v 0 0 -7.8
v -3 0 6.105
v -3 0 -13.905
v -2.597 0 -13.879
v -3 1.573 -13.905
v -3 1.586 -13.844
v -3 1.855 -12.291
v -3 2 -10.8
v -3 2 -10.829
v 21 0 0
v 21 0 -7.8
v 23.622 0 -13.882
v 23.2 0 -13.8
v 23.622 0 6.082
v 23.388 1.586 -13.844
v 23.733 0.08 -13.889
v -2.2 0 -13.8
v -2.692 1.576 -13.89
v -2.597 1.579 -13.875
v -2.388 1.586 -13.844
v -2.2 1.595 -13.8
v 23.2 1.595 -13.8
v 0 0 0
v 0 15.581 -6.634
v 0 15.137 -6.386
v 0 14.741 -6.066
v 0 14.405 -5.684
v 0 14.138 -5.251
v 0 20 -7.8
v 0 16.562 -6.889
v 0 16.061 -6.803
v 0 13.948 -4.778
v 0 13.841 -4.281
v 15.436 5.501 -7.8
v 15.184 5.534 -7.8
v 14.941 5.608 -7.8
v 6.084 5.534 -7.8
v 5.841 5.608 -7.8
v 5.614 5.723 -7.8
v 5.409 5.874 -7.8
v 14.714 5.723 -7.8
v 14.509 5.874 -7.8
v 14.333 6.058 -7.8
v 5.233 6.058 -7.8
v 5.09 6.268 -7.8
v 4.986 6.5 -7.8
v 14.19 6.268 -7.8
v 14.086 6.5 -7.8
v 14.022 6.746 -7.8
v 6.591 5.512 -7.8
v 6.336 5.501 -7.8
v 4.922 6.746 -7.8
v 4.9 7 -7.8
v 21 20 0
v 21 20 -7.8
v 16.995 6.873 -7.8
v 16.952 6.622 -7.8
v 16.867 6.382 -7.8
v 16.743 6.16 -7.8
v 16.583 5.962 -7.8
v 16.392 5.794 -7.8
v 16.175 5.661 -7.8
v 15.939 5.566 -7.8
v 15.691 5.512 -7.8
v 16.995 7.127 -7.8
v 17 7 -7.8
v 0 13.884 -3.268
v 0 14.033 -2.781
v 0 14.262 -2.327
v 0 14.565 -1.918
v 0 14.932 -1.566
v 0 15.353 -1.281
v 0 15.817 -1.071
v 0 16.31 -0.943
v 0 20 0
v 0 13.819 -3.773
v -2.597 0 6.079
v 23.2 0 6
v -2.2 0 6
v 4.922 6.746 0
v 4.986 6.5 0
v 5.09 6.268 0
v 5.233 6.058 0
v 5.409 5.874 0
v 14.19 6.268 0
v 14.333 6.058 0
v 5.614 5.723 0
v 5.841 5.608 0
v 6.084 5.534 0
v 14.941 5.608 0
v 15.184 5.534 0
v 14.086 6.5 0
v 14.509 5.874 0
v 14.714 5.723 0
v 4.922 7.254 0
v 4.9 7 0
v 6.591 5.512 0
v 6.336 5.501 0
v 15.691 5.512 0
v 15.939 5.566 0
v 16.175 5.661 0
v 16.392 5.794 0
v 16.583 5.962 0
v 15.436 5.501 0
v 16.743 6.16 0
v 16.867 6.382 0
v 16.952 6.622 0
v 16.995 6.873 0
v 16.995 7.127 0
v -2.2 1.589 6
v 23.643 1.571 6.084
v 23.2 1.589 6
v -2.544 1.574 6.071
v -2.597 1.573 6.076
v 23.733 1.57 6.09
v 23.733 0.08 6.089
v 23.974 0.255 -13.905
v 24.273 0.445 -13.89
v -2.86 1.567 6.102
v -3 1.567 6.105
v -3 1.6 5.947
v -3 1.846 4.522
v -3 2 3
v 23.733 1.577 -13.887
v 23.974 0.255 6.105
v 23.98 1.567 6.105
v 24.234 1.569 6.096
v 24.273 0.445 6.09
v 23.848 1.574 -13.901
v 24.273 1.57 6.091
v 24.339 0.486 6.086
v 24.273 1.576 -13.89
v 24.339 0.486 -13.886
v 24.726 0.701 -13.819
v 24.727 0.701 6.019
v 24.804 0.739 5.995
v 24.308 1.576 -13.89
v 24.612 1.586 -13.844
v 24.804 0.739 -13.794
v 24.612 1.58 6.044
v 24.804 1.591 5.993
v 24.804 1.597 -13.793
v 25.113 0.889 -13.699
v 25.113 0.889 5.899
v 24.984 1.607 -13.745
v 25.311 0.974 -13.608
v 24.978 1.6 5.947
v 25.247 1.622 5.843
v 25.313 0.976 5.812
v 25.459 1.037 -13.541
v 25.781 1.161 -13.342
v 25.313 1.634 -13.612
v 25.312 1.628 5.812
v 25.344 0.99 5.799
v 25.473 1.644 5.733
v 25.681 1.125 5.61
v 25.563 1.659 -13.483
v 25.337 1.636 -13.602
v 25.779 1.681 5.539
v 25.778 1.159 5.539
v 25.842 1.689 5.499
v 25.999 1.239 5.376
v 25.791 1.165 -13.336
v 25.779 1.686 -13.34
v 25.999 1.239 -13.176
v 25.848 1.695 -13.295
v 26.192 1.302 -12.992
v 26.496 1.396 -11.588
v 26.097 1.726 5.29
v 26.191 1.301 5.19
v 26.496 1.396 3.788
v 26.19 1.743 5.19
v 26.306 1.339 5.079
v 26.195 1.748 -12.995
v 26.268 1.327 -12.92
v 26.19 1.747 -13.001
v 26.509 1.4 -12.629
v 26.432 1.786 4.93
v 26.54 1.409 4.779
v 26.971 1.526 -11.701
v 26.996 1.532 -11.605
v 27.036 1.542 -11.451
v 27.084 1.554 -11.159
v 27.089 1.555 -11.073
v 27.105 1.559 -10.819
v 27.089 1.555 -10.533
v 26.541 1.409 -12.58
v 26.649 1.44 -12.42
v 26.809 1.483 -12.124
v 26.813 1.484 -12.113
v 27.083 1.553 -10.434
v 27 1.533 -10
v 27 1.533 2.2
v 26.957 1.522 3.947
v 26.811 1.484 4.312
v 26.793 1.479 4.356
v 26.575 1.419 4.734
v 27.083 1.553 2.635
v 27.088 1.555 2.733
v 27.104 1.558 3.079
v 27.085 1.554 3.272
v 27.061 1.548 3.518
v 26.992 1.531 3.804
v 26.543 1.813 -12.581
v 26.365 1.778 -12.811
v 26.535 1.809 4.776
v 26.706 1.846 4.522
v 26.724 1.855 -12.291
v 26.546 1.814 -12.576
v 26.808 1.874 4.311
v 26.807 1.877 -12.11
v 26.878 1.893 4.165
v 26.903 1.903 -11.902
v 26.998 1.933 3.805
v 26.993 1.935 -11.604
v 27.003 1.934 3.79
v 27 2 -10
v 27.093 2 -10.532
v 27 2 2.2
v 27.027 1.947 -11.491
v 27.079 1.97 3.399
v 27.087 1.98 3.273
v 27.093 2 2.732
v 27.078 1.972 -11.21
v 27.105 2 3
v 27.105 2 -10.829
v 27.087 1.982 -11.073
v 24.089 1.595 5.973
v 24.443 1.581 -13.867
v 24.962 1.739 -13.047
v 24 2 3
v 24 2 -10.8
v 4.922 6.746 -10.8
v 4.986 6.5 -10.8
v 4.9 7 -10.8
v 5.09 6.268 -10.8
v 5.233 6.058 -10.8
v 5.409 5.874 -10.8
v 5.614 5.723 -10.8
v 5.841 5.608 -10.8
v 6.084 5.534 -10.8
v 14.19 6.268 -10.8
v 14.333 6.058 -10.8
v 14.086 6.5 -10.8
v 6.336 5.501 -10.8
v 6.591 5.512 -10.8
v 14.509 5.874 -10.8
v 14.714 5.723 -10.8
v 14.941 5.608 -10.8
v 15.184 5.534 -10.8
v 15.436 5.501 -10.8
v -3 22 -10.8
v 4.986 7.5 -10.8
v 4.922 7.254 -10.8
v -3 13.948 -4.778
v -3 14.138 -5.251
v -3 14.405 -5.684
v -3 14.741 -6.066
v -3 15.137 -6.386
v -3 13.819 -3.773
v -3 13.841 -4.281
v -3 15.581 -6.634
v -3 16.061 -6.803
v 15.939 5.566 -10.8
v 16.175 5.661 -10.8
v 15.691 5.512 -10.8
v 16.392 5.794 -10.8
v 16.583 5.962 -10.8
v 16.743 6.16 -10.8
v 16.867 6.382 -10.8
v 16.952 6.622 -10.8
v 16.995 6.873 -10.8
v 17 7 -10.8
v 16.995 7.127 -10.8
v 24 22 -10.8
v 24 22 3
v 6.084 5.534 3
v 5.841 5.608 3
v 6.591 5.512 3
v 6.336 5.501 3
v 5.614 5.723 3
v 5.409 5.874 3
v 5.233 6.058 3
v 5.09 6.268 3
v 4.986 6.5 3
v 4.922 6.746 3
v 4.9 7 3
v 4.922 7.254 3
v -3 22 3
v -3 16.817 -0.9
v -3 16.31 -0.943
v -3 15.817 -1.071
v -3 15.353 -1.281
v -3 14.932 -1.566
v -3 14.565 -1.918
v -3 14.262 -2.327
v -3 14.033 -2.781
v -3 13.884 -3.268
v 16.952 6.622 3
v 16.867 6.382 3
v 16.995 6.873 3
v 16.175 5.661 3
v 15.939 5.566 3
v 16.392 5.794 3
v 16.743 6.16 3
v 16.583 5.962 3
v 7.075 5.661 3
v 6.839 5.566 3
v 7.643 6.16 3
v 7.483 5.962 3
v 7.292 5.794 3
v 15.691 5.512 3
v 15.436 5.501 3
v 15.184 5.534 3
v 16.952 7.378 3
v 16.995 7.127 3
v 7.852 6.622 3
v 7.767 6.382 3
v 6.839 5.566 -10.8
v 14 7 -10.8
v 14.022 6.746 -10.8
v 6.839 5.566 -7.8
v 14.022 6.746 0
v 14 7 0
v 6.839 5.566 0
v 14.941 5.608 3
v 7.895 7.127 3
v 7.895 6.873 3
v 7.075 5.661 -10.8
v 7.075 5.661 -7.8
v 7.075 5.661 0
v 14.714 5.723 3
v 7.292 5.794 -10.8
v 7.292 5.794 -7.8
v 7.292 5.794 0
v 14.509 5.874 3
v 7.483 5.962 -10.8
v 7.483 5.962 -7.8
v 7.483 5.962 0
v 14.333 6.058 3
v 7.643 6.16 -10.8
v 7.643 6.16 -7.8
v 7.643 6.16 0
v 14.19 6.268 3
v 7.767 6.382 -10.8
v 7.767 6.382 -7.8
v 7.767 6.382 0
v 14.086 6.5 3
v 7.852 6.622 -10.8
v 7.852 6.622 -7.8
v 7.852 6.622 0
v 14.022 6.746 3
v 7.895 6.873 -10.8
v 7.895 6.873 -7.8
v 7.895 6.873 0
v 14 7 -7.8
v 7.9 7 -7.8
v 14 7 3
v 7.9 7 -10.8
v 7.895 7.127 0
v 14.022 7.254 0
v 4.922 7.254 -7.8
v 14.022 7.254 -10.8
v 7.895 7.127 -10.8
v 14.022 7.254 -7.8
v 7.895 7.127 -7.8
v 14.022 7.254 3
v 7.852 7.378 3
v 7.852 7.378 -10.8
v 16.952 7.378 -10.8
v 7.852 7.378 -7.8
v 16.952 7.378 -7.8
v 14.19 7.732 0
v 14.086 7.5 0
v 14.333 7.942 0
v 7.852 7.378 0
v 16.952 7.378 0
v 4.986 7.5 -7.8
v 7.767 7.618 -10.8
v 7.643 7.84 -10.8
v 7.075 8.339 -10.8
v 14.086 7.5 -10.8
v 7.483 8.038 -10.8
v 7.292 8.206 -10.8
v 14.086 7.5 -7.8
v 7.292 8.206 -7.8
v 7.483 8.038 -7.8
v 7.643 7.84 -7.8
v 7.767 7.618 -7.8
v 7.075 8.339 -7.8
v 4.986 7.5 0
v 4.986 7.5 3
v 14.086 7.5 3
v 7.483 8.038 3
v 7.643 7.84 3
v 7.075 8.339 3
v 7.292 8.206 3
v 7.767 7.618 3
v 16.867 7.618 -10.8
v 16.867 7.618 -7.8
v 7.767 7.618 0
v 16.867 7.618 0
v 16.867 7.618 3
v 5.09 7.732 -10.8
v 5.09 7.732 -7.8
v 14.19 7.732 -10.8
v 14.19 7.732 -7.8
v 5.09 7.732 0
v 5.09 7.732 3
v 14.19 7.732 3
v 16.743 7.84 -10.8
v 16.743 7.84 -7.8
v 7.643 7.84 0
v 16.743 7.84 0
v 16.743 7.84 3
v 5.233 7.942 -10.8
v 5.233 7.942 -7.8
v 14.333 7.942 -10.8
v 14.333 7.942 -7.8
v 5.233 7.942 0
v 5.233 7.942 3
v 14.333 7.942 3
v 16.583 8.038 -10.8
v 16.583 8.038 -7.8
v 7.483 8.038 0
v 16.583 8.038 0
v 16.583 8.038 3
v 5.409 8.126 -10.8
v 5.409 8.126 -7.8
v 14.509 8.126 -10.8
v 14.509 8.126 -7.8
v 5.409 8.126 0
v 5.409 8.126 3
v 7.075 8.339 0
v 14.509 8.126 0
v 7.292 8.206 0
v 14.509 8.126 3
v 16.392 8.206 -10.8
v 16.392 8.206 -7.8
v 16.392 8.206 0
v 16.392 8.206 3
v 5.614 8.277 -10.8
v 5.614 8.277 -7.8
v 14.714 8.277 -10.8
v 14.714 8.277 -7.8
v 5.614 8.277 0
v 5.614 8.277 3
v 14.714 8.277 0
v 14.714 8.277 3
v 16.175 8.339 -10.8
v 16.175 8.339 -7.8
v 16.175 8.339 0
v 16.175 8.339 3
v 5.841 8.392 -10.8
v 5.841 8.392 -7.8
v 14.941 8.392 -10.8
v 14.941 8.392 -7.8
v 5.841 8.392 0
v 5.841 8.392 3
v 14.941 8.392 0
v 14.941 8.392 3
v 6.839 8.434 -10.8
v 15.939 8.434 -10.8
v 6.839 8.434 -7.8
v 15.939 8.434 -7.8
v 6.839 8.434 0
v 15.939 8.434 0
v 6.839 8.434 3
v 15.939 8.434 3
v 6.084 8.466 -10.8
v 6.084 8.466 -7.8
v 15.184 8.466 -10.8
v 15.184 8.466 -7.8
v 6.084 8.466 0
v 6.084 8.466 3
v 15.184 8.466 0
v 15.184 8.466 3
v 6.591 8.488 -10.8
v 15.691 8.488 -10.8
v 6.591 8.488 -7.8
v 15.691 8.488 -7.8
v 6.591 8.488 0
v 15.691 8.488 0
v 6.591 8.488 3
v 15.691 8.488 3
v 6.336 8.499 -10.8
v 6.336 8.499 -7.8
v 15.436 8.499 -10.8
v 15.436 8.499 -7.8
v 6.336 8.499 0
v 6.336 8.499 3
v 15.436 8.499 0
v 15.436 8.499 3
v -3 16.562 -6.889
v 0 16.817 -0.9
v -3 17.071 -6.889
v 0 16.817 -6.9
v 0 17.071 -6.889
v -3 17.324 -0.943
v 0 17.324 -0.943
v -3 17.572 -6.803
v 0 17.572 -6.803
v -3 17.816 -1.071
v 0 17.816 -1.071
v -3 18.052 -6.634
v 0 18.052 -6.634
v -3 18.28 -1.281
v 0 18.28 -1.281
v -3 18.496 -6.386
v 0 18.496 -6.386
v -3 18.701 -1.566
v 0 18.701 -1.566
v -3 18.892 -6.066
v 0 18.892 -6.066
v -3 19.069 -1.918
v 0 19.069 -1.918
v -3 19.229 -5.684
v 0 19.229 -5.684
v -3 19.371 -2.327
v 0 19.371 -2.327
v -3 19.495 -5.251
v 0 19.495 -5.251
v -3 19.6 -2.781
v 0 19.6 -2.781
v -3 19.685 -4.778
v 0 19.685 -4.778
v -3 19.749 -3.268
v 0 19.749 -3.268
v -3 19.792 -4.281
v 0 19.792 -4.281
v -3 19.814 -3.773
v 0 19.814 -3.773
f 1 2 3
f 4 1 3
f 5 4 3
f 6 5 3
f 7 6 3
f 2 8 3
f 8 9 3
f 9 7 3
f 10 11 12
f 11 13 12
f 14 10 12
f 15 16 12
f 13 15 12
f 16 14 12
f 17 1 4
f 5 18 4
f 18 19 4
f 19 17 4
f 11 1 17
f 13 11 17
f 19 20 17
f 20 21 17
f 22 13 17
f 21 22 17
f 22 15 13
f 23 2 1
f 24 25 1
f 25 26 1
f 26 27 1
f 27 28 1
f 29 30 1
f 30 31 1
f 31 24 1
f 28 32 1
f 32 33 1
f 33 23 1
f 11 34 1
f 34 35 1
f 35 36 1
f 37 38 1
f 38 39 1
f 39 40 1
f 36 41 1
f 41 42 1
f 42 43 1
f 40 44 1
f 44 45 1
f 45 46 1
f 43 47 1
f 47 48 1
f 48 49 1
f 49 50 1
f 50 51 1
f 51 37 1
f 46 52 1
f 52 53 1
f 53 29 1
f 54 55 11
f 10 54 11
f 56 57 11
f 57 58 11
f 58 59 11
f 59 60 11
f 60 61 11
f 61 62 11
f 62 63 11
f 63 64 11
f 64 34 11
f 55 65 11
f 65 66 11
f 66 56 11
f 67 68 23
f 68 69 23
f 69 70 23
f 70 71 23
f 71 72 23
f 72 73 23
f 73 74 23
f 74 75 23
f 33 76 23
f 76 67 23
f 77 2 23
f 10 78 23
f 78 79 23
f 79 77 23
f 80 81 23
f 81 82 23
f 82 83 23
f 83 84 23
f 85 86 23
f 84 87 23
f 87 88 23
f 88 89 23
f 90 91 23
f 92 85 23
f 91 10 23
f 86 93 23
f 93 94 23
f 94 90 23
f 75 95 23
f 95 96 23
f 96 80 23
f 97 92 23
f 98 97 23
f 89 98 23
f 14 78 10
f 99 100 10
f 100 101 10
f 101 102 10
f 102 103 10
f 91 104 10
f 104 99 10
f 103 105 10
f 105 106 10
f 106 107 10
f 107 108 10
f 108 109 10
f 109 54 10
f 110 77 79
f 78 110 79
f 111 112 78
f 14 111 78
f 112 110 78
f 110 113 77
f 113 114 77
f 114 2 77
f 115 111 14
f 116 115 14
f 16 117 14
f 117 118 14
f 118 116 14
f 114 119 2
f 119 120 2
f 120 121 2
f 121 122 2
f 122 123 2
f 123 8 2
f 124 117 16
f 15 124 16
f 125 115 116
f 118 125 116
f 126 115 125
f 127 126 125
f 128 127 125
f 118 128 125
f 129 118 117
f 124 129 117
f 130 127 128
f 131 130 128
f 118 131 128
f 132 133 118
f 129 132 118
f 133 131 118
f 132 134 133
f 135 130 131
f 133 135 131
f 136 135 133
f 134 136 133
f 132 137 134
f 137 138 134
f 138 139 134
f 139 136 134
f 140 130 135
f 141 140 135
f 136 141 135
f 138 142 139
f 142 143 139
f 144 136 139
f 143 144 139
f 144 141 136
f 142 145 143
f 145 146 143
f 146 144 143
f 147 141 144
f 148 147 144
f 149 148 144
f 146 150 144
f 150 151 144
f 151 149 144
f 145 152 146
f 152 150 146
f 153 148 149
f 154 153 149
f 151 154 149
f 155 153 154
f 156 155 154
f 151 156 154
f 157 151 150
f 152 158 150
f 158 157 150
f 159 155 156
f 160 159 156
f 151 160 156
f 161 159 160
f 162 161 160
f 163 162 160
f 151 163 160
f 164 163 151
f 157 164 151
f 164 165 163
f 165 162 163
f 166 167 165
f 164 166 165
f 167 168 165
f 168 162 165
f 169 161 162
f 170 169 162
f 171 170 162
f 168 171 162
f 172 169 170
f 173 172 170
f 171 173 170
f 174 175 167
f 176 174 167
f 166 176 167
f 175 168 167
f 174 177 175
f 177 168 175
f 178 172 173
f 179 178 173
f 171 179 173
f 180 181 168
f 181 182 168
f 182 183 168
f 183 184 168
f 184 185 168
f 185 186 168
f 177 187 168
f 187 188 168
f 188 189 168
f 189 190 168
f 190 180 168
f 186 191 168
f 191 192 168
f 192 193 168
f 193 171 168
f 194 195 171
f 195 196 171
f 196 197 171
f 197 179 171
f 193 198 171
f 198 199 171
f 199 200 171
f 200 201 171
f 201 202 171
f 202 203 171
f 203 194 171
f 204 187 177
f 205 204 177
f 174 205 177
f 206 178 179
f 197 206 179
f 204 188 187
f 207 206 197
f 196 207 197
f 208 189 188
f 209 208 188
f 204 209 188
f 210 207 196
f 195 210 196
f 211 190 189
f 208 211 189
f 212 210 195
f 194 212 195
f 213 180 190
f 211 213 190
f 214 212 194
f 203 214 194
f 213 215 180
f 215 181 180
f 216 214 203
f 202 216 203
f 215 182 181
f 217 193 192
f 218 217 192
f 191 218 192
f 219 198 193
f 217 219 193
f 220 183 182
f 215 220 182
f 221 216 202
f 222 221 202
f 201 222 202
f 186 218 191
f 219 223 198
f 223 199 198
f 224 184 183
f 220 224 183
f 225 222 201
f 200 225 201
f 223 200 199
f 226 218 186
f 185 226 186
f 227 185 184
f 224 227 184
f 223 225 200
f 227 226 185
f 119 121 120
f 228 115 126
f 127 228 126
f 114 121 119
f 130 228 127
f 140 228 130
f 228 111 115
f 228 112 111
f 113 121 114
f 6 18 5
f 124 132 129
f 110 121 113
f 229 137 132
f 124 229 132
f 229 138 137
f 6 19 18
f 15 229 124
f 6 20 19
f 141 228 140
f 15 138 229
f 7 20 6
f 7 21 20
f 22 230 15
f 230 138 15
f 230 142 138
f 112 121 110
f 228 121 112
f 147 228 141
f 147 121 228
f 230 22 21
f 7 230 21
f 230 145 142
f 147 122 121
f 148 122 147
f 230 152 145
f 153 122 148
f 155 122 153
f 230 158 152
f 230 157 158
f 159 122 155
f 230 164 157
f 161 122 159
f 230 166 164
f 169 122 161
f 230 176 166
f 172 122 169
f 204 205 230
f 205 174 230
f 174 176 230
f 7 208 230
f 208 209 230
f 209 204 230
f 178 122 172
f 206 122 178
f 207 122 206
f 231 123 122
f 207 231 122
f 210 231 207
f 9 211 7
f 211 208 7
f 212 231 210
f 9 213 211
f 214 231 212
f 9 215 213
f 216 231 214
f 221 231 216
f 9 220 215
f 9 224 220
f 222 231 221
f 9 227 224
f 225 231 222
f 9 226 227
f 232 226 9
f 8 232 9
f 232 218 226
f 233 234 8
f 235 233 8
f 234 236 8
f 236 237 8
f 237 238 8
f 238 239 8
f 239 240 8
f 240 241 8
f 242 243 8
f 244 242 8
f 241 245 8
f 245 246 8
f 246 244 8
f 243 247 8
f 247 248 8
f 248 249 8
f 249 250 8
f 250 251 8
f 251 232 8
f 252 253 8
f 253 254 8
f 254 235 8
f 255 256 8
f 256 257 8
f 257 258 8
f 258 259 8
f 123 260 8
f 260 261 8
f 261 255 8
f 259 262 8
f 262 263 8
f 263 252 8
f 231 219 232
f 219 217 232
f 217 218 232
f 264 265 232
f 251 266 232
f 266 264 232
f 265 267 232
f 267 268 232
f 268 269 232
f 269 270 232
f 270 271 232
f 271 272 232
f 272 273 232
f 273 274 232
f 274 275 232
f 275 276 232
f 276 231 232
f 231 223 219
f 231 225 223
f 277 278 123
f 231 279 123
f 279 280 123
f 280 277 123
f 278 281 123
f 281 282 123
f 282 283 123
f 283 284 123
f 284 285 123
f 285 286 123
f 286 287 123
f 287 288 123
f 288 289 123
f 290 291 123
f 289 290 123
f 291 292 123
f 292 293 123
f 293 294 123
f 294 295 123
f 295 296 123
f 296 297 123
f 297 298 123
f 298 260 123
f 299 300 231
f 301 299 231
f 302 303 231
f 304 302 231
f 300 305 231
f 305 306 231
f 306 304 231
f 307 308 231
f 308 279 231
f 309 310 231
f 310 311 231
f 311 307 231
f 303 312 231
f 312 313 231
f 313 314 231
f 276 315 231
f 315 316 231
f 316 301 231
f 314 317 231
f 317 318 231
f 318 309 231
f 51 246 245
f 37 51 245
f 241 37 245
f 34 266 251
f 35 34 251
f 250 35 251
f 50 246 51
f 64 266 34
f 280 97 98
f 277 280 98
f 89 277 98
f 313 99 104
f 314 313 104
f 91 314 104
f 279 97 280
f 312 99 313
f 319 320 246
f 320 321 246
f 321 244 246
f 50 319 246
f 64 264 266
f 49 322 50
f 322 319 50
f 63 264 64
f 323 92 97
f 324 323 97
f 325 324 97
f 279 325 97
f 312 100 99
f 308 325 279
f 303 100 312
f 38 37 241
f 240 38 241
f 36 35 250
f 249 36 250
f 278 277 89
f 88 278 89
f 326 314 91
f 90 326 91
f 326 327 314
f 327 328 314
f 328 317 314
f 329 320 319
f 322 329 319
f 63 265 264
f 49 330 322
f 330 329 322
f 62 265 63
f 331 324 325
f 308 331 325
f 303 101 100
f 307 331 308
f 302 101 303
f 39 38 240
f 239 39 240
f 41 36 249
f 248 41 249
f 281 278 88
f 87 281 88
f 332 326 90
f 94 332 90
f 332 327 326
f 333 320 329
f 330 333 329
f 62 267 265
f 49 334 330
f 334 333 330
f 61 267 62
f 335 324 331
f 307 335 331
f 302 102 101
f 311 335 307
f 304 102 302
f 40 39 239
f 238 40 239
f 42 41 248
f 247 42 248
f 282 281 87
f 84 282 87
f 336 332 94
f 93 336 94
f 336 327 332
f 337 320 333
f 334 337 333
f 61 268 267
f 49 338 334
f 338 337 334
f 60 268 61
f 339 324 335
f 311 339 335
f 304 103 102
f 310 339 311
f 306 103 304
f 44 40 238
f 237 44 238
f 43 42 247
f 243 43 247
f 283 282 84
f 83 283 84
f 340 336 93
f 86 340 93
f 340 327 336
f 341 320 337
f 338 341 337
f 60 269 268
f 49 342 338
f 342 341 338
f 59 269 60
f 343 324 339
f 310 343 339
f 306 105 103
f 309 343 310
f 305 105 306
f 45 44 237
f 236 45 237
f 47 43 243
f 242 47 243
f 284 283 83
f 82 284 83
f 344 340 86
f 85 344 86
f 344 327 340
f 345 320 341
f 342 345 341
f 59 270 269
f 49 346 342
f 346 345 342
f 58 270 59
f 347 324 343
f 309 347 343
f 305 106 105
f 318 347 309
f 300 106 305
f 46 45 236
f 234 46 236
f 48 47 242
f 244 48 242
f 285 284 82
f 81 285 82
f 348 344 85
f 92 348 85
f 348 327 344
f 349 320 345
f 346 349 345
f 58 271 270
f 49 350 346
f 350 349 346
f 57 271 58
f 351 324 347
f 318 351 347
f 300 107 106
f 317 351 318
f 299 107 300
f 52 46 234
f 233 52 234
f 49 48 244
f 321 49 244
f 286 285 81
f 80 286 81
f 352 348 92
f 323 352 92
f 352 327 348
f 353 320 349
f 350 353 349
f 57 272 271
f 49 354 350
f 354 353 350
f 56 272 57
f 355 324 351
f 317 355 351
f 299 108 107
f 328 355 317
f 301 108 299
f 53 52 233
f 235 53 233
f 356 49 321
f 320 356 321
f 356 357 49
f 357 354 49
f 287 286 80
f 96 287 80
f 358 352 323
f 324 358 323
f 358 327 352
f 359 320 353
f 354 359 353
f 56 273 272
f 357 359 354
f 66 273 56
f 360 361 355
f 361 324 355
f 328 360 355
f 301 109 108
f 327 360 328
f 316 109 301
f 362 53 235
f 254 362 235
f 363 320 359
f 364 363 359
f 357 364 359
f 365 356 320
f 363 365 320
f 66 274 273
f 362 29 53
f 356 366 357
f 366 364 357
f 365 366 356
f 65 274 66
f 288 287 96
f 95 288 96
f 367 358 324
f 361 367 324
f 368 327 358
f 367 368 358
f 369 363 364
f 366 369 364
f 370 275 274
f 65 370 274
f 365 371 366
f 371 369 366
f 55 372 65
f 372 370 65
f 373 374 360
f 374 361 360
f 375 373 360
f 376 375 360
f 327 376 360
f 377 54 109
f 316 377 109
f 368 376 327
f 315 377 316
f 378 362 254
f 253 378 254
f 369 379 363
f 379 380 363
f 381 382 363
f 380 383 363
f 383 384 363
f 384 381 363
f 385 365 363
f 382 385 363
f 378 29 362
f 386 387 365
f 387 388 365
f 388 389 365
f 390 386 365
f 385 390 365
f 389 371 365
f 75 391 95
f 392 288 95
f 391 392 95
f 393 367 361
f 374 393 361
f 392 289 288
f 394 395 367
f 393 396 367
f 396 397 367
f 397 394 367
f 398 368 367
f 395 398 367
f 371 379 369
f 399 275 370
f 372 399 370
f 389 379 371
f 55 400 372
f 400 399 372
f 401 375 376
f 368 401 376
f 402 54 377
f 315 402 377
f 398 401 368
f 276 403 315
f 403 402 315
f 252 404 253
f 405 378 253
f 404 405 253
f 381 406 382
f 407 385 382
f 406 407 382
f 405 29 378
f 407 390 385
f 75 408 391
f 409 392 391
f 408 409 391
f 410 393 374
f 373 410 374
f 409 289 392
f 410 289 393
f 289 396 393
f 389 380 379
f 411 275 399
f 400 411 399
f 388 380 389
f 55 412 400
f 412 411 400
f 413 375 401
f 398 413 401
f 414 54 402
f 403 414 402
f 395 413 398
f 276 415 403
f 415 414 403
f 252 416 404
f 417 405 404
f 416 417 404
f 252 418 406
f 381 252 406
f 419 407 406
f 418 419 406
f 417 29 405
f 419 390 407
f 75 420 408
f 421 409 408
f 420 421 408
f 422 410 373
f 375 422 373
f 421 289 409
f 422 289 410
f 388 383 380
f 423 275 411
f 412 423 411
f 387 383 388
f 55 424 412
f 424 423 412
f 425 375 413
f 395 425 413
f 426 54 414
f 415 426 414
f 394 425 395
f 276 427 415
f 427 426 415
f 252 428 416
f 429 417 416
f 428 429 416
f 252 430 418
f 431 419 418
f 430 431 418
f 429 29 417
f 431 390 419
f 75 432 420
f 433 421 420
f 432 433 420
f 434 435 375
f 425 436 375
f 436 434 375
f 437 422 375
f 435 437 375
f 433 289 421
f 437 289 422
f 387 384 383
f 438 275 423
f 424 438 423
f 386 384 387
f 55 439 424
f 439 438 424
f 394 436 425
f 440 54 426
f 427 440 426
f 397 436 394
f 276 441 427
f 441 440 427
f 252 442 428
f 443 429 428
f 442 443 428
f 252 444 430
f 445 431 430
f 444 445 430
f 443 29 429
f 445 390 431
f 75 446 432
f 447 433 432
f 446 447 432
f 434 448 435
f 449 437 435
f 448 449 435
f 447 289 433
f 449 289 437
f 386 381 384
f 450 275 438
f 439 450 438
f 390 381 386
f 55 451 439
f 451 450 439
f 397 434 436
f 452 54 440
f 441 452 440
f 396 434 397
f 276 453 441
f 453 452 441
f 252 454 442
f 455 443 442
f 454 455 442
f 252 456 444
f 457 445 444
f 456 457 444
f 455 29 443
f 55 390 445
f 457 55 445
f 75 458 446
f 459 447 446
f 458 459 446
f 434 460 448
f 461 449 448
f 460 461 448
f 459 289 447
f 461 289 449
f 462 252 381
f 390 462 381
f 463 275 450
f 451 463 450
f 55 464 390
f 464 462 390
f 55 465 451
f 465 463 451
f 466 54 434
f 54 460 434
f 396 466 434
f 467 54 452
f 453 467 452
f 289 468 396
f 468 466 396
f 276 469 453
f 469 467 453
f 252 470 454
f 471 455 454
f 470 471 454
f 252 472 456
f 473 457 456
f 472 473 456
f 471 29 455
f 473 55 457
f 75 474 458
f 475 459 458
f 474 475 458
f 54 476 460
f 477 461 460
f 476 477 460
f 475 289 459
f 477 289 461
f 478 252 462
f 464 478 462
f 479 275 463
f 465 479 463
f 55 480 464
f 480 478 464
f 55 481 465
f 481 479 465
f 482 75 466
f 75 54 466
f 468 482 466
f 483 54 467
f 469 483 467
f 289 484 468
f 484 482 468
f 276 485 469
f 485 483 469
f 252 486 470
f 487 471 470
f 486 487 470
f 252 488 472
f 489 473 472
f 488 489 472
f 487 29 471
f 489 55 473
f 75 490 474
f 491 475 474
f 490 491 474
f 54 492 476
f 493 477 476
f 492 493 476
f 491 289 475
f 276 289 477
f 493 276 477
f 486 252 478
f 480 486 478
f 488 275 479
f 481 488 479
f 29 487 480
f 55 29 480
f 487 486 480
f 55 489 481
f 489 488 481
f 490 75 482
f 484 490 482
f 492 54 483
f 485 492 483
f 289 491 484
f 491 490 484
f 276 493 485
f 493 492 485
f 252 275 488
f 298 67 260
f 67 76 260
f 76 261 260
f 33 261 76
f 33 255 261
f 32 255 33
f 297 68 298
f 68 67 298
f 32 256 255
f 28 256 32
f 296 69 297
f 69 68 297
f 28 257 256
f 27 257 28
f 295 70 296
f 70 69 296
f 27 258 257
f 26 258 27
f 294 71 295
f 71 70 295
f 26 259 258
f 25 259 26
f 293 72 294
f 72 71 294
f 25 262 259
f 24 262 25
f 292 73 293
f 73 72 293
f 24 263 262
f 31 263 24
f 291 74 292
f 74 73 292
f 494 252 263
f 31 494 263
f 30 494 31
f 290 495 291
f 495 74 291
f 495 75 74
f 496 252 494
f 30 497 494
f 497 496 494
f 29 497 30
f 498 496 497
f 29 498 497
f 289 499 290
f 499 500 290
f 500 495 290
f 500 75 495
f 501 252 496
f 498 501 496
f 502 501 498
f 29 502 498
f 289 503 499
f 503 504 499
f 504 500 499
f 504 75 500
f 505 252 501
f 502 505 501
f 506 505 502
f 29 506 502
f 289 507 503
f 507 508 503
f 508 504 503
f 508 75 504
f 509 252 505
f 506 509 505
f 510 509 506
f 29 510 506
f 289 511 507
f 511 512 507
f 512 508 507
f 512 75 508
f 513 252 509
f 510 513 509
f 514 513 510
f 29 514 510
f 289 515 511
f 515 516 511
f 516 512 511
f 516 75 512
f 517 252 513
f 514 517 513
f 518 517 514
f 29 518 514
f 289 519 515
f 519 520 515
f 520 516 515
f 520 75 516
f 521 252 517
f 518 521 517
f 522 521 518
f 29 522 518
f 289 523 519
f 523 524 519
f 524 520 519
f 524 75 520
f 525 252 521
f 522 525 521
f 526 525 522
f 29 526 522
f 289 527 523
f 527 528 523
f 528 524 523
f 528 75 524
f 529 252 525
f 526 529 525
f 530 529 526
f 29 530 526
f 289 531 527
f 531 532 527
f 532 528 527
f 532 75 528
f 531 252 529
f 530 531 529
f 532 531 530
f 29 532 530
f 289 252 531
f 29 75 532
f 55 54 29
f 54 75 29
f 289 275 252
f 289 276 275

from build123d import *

# Parameters (mm, degrees)
SKETCH1_W               = 27
SKETCH1_H               = 13.8
SKETCH1_W_2             = 21
SKETCH1_H_2             = 7.8
BOSS_EXTRUDE1_DEPTH     = 22
SKETCH3_W               = 21
SKETCH3_H               = 7.8
BOSS_EXTRUDE2_DEPTH     = 2
SKETCH6_W               = 27
SKETCH6_H               = 13.8
BOSS_EXTRUDE3_DEPTH     = 2
SKETCH8_R               = 3
CUT_EXTRUDE2_DEPTH      = 5
CUT_EXTRUDE3_DEPTH      = 45
CUT_EXTRUDE5_DEPTH      = 45
CUT_EXTRUDE5_DEPTH_BACK = 45
SKETCH7_R               = 1.5
CUT_EXTRUDE6_DEPTH      = 4.10483504
CUT_EXTRUDE6_DEPTH_BACK = 17.904835039
SKETCH15_W              = 4.518403315
SKETCH15_H              = 4.307078744
CUT_EXTRUDE7_DEPTH      = 10
CUT_EXTRUDE7_DEPTH_BACK = 20


with BuildPart() as part:
    # Sketch1 → Boss-Extrude1 (new body)
    with BuildSketch(Plane(origin=(0, 0, 0), x_dir=(1, 0, 0), z_dir=(0, 1, 0))):
        with Locations((10.5, 3.9)):
            Rectangle(SKETCH1_W, SKETCH1_H)
        with Locations((10.5, 3.9)):
            Rectangle(SKETCH1_W_2, SKETCH1_H_2, mode=Mode.SUBTRACT)
    extrude(amount=BOSS_EXTRUDE1_DEPTH)

    # Sketch3 → Boss-Extrude2 (add)
    with BuildSketch(Plane(origin=(0, 22, 0), x_dir=(1, 0, 0), z_dir=(0, 1, 0))):
        with Locations((10.5, 3.9)):
            Rectangle(SKETCH3_W, SKETCH3_H)
    extrude(amount=-BOSS_EXTRUDE2_DEPTH)

    # Sketch6 → Boss-Extrude3 (add)
    with BuildSketch(Plane.XZ):
        with BuildLine():
            Line((-6, 2.2), (-6, -10))
            ThreePointArc((-6, -10), (-5.19544984, -12.99544984), (-2.2, -13.8))
            Line((-2.2, -13.8), (23.2, -13.8))
            ThreePointArc((23.2, -13.8), (26.19544984, -12.99544984), (27, -10))
            Line((27, -10), (27, 2.2))
            ThreePointArc((27, 2.2), (26.19544984, 5.19544984), (23.2, 6))
            Line((23.2, 6), (-2.2, 6))
            ThreePointArc((-2.2, 6), (-5.19544984, 5.19544984), (-6, 2.2))
        make_face()
        with Locations((10.5, -3.9)):
            Rectangle(SKETCH6_W, SKETCH6_H, mode=Mode.SUBTRACT)
    extrude(amount=-BOSS_EXTRUDE3_DEPTH)

    # Sketch8 → Cut-Extrude2 (cut)
    with BuildSketch(Plane.ZY.offset(3)):
        with Locations((-3.9, 16.816542633)):
            Circle(SKETCH8_R)
    extrude(amount=-CUT_EXTRUDE2_DEPTH, mode=Mode.SUBTRACT)

    # Sketch12 → Cut-Extrude3 (cut)
    with BuildSketch(Plane.ZY.offset(6)):
        with BuildLine():
            Line((3, 2), (6.104834939, 2))
            Line((6.104834939, 2), (6.104834939, 1.56677659))
            add(Edge.make_bspline(
                [(6.104834939, 1.56677659), (4.570942596, 1.898546139), (3, 2)],
                knots=[0, 0, 0, 1, 1, 1], degree=2))
        make_face()
        with BuildLine():
            Line((-13.933772202, 2), (-13.933772202, 1.56677659))
            add(Edge.make_bspline(
                [(-13.933772202, 1.56677659), (-12.399879859, 1.898546139), (-10.828937263, 2)],
                knots=[0, 0, 0, 1, 1, 1], degree=2))
            Line((-10.828937263, 2), (-13.933772202, 2))
        make_face()
    extrude(amount=-CUT_EXTRUDE3_DEPTH, mode=Mode.SUBTRACT)

    # Sketch13 → Cut-Extrude5 (cut, two sides)
    with BuildSketch(Plane(origin=(27, 0, -10), x_dir=(1, 0, 0), z_dir=(0, 0, 1))) as cut_extrude5_sk:
        with BuildLine():
            Line((-3.377880941, 0), (0.509598996, 0))
            Line((0.509598996, 0), (0.509598996, 1.57572602))
            Line((0.509598996, 1.57572602), (0.175576118, 1.57572602))
            add(Edge.make_bspline(
                [(-3.377880941, 0), (-2.337490472, 0.807111843), (-1.090367189, 1.274012221), (0.175576118, 1.57572602)],
                knots=[0, 0, 0, 0, 1, 1, 1, 1], degree=3))
        make_face()
    extrude(amount=CUT_EXTRUDE5_DEPTH, mode=Mode.SUBTRACT)
    extrude(cut_extrude5_sk.sketch, amount=-CUT_EXTRUDE5_DEPTH_BACK, mode=Mode.SUBTRACT)

    # Sketch7 → Cut-Extrude6 (cut, two sides)
    with BuildSketch(Plane(origin=(0, 0, -10.8), x_dir=(-1, 0, 0), z_dir=(0, 0, -1))) as cut_extrude6_sk:
        with Locations((-6.4, 7)):
            Circle(SKETCH7_R)
        with Locations((-15.5, 7)):
            Circle(SKETCH7_R)
    extrude(amount=CUT_EXTRUDE6_DEPTH, mode=Mode.SUBTRACT)
    extrude(cut_extrude6_sk.sketch, amount=-CUT_EXTRUDE6_DEPTH_BACK, mode=Mode.SUBTRACT)

    # Sketch15 → Cut-Extrude7 (cut, two sides)
    with BuildSketch(Plane.XY.offset(3)) as cut_extrude7_sk:
        with Locations((-5.259201658, -0.153539372)):
            Rectangle(SKETCH15_W, SKETCH15_H)
    extrude(amount=CUT_EXTRUDE7_DEPTH, mode=Mode.SUBTRACT)
    extrude(cut_extrude7_sk.sketch, amount=-CUT_EXTRUDE7_DEPTH_BACK, mode=Mode.SUBTRACT)


solid = part.part
